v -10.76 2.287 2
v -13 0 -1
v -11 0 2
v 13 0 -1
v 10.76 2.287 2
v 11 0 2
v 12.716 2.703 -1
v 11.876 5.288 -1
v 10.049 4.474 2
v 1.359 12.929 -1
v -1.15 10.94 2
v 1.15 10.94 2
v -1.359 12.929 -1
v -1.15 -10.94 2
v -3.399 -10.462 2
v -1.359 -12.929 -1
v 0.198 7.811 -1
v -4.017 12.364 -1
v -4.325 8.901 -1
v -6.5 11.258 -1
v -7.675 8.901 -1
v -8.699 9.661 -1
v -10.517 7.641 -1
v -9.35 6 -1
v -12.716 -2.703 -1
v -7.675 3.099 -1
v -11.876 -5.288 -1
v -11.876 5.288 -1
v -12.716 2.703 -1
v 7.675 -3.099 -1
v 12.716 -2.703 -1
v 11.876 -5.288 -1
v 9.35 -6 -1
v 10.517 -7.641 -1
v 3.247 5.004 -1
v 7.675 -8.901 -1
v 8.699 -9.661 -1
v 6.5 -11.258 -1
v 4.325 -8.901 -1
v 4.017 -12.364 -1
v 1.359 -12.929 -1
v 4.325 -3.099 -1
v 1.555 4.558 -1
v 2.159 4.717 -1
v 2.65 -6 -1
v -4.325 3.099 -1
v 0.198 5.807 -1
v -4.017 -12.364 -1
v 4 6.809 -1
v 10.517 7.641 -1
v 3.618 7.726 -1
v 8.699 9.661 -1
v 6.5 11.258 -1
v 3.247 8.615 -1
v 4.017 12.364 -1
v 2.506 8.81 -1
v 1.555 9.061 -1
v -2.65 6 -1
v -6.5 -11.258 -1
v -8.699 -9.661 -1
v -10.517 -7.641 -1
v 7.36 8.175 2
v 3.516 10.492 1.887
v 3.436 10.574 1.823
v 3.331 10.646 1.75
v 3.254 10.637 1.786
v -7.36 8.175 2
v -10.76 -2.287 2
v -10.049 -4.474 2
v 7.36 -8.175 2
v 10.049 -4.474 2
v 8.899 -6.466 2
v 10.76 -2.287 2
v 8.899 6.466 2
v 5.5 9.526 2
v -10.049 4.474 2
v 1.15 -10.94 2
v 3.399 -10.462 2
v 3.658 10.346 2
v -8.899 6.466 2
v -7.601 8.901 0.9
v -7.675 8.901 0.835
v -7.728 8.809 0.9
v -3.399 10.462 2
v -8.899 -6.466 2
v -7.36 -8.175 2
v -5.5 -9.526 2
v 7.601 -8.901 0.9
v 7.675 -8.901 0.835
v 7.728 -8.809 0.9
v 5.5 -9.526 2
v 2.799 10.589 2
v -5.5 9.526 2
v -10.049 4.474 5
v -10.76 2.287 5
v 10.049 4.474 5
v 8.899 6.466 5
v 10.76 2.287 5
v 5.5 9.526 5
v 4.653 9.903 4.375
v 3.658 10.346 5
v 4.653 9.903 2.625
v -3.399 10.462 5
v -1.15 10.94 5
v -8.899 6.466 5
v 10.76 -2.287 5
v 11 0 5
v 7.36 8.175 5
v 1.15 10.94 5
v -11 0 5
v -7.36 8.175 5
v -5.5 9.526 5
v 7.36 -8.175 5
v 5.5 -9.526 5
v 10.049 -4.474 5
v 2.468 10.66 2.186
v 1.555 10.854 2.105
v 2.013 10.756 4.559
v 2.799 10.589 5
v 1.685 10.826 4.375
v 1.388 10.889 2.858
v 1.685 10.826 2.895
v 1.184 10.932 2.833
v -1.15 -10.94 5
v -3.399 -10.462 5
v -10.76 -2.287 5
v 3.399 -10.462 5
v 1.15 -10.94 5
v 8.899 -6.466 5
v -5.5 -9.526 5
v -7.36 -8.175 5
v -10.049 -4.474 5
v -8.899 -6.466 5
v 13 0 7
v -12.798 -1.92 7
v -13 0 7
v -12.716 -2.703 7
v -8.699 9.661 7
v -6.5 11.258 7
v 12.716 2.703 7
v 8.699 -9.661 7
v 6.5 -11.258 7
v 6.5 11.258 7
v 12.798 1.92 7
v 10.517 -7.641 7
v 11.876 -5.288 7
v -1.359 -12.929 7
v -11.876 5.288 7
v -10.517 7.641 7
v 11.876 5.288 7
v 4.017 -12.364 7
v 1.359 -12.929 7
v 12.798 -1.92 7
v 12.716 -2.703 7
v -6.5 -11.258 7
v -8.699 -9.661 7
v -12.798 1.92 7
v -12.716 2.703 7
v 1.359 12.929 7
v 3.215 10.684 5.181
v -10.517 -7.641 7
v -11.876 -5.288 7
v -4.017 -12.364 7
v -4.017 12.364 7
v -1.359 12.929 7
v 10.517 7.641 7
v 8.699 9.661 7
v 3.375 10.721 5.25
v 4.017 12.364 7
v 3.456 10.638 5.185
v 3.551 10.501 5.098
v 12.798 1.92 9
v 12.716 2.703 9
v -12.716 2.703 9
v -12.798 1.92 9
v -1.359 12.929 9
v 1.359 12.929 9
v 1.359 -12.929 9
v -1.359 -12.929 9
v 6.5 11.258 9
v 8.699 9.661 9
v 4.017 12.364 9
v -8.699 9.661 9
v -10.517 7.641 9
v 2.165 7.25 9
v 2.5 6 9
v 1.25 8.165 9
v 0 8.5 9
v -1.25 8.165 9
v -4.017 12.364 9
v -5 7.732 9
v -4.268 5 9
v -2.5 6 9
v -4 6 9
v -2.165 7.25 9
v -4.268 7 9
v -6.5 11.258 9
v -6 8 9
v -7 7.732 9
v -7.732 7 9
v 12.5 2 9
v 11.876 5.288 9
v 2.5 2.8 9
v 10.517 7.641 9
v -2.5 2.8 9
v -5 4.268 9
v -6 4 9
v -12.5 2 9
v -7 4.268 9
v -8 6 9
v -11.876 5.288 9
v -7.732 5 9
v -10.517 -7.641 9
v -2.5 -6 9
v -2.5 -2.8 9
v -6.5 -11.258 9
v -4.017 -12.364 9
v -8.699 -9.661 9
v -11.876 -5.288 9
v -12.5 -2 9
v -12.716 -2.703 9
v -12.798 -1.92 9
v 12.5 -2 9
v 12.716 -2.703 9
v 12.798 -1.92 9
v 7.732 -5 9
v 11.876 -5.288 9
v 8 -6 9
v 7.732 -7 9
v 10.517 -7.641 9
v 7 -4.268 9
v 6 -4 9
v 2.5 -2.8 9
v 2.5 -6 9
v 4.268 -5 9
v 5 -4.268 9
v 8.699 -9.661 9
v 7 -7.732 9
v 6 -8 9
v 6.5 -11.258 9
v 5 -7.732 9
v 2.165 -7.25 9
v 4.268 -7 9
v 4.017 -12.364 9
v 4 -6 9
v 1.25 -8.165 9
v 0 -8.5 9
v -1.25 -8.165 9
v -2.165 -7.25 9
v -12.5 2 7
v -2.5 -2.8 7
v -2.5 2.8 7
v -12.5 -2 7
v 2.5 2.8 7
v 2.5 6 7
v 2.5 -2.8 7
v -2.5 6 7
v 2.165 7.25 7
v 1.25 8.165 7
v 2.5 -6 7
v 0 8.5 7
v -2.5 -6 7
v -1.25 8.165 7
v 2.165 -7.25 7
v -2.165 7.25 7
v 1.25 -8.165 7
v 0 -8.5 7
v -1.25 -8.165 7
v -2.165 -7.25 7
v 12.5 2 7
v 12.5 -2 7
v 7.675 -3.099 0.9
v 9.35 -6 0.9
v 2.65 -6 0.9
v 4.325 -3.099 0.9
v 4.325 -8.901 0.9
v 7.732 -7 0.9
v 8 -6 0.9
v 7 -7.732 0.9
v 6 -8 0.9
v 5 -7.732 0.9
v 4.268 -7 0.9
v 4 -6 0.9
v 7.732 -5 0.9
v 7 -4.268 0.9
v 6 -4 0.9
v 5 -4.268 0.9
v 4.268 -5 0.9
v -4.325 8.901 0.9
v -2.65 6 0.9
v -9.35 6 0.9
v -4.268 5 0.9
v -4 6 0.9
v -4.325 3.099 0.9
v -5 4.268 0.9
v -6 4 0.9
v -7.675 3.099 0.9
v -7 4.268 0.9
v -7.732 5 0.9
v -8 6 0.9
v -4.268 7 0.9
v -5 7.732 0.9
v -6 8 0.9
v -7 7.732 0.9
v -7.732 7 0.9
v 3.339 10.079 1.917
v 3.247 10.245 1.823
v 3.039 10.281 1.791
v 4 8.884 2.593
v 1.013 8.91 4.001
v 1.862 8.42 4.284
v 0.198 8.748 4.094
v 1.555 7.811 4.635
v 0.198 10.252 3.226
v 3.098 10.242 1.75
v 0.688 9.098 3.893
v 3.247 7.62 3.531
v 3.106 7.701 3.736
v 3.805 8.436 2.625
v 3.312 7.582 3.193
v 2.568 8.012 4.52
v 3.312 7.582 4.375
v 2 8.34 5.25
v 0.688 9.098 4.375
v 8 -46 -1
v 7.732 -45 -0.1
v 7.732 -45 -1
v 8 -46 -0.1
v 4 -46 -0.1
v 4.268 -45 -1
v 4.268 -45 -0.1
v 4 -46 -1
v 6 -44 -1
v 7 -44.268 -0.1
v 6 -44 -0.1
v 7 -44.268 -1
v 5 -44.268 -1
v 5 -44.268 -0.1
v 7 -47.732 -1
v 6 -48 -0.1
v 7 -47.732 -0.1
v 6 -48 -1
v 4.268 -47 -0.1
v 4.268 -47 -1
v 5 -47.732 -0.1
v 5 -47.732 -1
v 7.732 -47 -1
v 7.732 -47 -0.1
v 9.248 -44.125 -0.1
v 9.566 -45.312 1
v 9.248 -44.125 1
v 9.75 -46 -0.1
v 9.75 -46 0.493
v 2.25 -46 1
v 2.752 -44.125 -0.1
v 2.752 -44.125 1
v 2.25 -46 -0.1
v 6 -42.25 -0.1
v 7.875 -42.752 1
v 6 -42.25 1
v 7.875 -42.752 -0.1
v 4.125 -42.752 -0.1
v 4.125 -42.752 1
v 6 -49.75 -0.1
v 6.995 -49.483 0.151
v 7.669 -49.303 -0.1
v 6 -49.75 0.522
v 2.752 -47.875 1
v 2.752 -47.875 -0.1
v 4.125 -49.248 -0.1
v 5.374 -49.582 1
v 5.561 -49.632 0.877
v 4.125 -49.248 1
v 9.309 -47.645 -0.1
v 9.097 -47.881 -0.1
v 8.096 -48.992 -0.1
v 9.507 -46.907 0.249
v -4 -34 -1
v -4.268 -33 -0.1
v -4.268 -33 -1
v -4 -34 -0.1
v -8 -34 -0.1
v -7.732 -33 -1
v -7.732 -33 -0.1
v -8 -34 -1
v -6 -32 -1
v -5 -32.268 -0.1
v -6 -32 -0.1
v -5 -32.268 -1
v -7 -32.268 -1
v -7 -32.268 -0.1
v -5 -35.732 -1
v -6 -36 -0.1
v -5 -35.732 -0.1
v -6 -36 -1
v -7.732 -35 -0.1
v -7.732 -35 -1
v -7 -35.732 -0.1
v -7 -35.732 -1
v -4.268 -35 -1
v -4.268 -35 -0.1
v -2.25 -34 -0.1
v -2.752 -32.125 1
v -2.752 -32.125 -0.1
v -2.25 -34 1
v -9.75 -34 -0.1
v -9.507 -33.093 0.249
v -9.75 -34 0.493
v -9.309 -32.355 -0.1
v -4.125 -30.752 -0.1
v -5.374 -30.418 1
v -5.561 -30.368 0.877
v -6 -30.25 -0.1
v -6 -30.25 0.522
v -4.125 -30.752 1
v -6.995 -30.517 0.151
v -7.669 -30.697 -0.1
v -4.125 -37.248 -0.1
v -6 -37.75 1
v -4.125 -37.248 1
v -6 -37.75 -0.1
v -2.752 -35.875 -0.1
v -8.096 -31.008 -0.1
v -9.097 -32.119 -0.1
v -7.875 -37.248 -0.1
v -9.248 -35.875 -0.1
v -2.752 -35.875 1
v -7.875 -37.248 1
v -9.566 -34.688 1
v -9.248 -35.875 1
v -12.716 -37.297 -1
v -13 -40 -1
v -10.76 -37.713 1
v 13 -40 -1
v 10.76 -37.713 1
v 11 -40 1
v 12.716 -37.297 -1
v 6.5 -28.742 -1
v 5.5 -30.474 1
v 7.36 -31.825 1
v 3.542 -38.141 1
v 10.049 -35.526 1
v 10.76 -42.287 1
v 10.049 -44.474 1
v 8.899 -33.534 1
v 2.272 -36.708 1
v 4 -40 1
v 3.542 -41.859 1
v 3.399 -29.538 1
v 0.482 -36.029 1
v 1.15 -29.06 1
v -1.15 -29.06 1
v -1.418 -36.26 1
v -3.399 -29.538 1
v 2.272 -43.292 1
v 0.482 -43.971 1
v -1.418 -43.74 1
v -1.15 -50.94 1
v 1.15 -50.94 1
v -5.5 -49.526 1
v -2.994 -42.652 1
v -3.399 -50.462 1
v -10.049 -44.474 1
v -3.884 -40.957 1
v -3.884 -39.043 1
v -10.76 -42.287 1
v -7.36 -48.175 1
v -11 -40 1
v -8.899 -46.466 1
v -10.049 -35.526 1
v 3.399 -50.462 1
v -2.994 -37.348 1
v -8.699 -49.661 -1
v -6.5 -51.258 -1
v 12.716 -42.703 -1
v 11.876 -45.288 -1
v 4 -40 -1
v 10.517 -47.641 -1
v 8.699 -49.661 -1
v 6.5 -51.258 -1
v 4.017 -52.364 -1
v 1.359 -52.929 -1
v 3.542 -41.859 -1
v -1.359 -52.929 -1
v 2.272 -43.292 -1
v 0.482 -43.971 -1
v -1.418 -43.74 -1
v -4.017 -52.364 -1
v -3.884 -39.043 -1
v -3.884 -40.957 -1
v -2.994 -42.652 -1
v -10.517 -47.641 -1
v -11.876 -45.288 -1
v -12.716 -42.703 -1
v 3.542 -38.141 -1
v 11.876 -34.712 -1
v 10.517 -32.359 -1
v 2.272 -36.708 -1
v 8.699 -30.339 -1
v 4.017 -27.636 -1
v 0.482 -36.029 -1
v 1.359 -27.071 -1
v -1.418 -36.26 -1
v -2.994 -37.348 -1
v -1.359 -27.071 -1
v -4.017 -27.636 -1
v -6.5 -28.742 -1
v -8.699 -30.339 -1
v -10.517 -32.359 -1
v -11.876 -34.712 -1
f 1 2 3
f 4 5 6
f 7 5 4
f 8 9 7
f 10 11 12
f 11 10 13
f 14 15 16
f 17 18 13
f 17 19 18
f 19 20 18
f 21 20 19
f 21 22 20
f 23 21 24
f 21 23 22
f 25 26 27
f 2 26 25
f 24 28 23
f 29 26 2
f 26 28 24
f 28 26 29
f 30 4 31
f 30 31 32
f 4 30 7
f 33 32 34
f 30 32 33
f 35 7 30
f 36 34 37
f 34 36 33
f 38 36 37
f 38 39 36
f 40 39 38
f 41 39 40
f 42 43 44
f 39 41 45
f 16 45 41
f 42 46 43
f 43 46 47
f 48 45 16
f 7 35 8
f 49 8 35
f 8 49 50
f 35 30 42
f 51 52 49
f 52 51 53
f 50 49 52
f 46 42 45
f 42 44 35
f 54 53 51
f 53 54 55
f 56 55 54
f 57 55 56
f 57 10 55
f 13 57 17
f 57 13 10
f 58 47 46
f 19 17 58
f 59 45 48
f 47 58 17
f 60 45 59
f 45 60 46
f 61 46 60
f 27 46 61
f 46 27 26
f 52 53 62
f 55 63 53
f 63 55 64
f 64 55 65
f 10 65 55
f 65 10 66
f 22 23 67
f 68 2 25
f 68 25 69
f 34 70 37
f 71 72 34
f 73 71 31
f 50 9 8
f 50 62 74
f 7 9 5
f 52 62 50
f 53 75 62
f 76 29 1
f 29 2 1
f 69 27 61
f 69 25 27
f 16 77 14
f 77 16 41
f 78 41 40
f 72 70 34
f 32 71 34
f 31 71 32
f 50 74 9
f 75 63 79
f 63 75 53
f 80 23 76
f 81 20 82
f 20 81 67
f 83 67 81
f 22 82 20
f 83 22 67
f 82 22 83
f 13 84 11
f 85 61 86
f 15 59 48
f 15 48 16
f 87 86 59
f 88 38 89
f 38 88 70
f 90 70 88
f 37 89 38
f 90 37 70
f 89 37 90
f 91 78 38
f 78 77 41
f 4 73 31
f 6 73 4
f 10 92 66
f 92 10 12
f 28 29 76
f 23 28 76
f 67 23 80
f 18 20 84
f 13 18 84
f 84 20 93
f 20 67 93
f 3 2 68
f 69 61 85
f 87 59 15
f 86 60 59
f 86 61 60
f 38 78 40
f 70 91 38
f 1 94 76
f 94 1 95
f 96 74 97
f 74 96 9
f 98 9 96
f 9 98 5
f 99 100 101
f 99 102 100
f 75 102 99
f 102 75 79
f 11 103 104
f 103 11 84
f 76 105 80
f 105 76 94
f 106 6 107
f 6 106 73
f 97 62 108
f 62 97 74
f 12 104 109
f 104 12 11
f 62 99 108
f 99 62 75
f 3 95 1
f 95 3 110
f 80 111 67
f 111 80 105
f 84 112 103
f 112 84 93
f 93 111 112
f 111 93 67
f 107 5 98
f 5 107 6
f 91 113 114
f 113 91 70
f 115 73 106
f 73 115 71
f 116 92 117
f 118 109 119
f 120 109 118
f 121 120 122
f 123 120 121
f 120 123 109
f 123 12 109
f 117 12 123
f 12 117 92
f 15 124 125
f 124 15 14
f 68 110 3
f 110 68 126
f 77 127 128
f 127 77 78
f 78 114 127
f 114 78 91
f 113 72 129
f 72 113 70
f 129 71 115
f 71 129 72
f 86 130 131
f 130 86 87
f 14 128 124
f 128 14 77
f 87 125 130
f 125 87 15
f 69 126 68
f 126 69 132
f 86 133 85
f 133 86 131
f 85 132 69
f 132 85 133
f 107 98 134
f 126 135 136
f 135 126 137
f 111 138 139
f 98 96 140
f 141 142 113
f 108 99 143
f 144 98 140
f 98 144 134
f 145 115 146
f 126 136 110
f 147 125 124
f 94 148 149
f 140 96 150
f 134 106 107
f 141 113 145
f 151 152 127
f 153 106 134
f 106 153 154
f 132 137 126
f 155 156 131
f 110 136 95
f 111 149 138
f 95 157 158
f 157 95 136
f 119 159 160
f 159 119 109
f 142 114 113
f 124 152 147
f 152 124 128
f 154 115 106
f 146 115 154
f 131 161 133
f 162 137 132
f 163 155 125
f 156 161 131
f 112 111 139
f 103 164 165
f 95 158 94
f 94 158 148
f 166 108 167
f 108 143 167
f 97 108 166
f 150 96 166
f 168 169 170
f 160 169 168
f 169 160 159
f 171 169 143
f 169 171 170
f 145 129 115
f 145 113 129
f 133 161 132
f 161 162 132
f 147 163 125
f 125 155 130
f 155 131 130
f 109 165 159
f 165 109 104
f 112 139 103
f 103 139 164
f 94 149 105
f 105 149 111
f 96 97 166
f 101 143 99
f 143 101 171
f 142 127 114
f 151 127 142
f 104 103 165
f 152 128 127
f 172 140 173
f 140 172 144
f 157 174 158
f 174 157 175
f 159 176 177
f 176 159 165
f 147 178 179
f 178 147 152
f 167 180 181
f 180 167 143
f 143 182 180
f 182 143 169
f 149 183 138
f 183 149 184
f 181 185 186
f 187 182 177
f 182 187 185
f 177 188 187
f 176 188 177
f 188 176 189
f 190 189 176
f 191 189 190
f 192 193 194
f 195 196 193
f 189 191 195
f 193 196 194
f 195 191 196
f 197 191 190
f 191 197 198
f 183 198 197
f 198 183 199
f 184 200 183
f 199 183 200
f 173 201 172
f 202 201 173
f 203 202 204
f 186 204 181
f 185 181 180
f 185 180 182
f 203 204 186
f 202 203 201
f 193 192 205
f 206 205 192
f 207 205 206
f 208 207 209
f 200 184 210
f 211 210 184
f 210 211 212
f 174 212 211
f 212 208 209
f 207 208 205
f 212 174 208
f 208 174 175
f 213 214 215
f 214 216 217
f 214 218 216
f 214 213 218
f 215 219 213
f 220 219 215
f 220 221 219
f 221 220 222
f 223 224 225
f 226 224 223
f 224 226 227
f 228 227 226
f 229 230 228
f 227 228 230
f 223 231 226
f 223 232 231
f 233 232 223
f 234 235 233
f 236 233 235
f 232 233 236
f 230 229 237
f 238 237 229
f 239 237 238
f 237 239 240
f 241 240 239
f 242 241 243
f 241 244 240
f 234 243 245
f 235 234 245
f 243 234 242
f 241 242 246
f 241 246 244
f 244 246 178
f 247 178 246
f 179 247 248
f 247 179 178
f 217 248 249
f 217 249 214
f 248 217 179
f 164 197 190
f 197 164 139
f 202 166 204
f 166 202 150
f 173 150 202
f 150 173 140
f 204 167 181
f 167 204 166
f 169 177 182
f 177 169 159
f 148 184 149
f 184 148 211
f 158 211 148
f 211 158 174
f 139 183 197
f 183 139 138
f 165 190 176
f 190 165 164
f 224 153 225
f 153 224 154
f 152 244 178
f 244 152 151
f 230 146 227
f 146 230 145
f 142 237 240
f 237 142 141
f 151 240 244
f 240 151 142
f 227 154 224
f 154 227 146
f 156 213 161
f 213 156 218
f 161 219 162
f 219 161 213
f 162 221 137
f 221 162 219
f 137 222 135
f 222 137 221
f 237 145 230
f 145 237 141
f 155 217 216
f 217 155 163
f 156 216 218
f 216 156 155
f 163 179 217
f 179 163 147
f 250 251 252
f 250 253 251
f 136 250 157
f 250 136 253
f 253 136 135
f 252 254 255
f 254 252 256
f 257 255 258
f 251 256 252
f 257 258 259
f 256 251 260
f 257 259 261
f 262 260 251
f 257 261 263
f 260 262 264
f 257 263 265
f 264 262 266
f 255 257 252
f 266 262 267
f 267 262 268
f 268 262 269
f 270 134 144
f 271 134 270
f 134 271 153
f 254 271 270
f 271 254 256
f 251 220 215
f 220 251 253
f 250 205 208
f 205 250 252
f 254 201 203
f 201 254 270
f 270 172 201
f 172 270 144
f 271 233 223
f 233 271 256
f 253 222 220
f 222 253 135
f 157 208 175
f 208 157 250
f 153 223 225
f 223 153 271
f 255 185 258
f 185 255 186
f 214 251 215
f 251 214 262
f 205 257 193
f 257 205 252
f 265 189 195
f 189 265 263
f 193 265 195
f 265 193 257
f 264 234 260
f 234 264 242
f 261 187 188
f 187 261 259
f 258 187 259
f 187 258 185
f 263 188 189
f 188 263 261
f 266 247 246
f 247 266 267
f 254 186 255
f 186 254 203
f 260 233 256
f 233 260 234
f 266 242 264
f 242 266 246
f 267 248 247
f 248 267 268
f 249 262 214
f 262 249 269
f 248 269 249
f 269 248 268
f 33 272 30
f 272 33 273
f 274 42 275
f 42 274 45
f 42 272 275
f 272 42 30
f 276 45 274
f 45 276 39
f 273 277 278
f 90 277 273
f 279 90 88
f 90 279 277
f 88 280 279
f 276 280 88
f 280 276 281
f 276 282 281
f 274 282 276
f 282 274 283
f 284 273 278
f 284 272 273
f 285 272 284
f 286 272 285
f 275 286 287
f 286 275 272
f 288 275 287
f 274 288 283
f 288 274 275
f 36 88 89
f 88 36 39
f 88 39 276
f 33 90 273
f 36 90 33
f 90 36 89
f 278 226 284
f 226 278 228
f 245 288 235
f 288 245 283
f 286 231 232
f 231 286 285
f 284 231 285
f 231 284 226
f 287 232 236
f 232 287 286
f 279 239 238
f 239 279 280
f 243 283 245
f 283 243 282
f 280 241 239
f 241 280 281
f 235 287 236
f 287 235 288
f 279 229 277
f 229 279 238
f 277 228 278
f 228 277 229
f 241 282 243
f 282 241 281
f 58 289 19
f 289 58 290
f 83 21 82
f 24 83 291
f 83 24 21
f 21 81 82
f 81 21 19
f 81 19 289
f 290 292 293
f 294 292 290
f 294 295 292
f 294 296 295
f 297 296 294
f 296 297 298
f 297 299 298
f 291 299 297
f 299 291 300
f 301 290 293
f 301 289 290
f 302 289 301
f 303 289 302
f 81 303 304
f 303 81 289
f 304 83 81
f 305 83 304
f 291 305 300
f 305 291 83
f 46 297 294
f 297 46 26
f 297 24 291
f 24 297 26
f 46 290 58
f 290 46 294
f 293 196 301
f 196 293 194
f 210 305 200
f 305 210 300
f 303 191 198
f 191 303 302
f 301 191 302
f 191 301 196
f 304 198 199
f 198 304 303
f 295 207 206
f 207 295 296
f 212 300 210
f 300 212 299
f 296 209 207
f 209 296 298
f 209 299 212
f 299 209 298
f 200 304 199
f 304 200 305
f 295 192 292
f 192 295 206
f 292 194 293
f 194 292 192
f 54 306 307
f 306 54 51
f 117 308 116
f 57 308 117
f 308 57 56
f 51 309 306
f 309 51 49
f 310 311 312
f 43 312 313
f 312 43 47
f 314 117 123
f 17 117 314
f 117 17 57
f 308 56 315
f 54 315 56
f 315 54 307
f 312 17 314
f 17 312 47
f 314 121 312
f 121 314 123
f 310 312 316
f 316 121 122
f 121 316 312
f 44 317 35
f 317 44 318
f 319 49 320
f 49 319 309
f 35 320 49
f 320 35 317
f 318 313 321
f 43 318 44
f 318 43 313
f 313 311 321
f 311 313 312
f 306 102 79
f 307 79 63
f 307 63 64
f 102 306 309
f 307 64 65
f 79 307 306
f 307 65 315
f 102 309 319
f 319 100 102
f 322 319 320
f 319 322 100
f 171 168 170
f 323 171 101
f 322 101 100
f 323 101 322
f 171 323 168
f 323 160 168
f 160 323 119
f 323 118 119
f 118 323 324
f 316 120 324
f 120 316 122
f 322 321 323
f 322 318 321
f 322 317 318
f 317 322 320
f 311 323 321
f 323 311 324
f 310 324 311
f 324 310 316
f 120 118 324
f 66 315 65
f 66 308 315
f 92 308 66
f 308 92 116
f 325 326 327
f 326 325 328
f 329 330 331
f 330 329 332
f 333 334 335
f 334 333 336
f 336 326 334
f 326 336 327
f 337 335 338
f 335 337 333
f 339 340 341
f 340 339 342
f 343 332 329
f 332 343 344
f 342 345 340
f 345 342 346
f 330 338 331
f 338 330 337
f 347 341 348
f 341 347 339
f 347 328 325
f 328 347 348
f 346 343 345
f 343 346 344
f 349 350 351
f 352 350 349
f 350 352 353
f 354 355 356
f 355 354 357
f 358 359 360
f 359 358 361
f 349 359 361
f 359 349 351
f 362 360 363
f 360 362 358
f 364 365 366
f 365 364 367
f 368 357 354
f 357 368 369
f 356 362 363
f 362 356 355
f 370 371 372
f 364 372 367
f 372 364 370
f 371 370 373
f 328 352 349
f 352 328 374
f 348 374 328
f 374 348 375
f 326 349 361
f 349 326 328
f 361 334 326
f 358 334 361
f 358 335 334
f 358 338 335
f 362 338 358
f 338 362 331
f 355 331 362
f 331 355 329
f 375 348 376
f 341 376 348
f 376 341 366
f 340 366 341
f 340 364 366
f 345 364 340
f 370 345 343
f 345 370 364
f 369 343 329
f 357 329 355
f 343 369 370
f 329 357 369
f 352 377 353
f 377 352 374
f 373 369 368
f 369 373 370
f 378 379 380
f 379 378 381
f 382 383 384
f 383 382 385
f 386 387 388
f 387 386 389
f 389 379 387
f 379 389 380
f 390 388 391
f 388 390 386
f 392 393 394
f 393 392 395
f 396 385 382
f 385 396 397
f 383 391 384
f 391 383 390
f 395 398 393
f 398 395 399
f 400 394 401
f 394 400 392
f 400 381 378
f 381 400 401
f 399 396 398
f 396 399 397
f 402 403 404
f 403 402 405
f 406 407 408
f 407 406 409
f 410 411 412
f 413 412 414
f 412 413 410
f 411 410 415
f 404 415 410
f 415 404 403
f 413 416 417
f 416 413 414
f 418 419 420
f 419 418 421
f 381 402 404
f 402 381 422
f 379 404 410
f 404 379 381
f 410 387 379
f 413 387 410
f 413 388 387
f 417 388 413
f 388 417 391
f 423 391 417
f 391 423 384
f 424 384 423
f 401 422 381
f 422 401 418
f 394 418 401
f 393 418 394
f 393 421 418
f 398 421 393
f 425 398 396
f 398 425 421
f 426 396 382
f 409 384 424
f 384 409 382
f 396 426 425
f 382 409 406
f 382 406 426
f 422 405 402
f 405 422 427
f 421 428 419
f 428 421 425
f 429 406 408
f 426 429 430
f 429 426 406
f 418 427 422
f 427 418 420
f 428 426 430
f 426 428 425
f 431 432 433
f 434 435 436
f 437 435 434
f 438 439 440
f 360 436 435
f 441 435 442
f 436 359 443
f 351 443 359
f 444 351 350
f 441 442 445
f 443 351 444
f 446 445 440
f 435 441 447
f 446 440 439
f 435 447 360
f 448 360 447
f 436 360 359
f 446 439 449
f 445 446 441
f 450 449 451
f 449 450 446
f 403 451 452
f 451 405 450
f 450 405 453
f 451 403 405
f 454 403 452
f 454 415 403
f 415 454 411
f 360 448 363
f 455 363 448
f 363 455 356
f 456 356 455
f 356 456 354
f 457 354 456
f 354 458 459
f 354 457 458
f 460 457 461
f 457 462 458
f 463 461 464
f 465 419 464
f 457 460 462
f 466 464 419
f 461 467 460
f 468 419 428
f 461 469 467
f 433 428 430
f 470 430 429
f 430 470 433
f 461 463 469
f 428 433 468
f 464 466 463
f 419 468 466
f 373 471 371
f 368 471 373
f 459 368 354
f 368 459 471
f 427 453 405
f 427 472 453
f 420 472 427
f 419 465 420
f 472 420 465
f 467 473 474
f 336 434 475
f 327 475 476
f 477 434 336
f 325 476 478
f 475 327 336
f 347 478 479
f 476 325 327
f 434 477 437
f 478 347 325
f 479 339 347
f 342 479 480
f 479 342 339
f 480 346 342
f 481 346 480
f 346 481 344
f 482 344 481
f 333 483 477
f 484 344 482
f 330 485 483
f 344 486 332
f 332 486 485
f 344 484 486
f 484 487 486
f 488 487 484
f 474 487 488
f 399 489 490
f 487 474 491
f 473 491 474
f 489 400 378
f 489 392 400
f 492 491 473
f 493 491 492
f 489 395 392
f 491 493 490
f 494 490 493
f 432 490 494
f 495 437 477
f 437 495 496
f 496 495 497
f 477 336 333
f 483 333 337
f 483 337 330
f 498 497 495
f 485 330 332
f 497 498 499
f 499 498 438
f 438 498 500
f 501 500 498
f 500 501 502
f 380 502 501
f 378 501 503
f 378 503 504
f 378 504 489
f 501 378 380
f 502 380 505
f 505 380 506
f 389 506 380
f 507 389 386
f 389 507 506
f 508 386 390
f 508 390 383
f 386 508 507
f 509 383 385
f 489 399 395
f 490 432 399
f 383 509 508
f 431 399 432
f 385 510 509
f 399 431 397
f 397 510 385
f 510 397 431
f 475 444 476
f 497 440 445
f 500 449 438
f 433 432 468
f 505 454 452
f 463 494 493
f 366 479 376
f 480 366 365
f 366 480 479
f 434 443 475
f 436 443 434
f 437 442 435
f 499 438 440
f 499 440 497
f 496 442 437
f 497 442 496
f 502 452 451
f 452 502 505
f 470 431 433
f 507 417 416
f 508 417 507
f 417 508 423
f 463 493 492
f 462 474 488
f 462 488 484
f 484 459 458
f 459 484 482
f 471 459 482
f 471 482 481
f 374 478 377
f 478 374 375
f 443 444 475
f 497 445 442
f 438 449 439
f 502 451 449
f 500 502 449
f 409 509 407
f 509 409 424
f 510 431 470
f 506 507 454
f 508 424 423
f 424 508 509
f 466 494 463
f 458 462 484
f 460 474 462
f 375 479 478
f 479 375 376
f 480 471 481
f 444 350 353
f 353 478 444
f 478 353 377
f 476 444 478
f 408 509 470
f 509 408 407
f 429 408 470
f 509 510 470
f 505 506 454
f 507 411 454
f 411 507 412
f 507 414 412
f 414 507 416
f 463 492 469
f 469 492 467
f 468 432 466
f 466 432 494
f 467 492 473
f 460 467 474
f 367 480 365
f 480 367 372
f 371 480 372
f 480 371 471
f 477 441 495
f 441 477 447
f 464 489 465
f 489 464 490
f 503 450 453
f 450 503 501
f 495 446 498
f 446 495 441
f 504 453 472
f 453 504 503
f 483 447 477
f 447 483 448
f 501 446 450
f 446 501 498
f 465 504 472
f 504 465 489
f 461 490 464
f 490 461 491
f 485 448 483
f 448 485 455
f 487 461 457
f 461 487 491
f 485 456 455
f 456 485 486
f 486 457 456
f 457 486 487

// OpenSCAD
module servo_horn(height=2) // PowerHD HD-1800A - cross horn
{
    quality = 12;
    hull()
    {
        translate( [-12.5,0,0] ) cylinder( d=4, h=height,$fn=quality );
        translate( [0,0,0] ) cylinder( d=6, h=height,$fn=quality );
        translate( [12.5,0,0] ) cylinder( d=4, h=height,$fn=quality );
    }
    hull()
    {
        translate( [0,6,0] ) cylinder( d=5, h=height, $fn=quality );
        translate( [0,-6,0] ) cylinder( d=5, h=height,$fn=quality );
    }
}


// assumptions for control wire displacement = 50mm / 30mm
// diameter for full motor rotation should be 16mm / 10mm
// 180 degrees (1/2) rotation should be around d=32mm / 20mm
//translate([0,-30,0])

difference()
{
    union() // spool
    {
        translate([0,0,-1]) cylinder( d1=26, d2=22,h=3 );
        translate([0,0,2]) cylinder( d=22,h=3 );
        translate([0,0,5]) cylinder( d1=22,d2=26, h=2 );
        translate([0,0,7]) cylinder( d1=26,d2=26, h=2 );
    }
    translate([0,0,7]) servo_horn(height=3); //servo
    translate([7-5,6.5-2,-5]) rotate([-30,0,0]) cylinder(d=4,h=10);
    translate([12-5,19-2,3.5]) rotate([90,90,-30]) cylinder(d=3.5,h=10);
    
    translate( [6,-6,-1.1] )
    {
        cylinder( d=6.7, h=2, $fn=6 ); // 3mm nut
        translate([0,0,-2]) cylinder( d=4, h=15, $fn=12 ); // 3mm screw
    }
    translate( [-6,6,-1.1] )
    {
        cylinder( d=6.7, h=2, $fn=6 ); // 3mm nut
        translate([0,0,-2]) cylinder( d=4, h=15, $fn=12 ); // 3mm screw
    }
}



// lid:

translate([0,-40,-1])  // [0,0,15] to be above
difference()
{
    cylinder(d1=26,d2=22,h=2);
    translate( [0,0,-1] ) cylinder(d=8,h=6);
        translate( [6,-6,-0.1] )
        {
            translate([0,0,-2]) cylinder( d=4, h=15, $fn=12 ); // 3mm screw
            translate([0,0,1]) cylinder( d=7.5, h=5, $fn=12 ); // 3mm screw
        }
        translate( [-6,6,-0.1] )
        {
            translate([0,0,-2]) cylinder( d=4, h=15, $fn=12 ); // 3mm screw
            translate([0,0,1]) cylinder( d=7.5, h=5, $fn=12 ); // 3mm screw
        }
}
